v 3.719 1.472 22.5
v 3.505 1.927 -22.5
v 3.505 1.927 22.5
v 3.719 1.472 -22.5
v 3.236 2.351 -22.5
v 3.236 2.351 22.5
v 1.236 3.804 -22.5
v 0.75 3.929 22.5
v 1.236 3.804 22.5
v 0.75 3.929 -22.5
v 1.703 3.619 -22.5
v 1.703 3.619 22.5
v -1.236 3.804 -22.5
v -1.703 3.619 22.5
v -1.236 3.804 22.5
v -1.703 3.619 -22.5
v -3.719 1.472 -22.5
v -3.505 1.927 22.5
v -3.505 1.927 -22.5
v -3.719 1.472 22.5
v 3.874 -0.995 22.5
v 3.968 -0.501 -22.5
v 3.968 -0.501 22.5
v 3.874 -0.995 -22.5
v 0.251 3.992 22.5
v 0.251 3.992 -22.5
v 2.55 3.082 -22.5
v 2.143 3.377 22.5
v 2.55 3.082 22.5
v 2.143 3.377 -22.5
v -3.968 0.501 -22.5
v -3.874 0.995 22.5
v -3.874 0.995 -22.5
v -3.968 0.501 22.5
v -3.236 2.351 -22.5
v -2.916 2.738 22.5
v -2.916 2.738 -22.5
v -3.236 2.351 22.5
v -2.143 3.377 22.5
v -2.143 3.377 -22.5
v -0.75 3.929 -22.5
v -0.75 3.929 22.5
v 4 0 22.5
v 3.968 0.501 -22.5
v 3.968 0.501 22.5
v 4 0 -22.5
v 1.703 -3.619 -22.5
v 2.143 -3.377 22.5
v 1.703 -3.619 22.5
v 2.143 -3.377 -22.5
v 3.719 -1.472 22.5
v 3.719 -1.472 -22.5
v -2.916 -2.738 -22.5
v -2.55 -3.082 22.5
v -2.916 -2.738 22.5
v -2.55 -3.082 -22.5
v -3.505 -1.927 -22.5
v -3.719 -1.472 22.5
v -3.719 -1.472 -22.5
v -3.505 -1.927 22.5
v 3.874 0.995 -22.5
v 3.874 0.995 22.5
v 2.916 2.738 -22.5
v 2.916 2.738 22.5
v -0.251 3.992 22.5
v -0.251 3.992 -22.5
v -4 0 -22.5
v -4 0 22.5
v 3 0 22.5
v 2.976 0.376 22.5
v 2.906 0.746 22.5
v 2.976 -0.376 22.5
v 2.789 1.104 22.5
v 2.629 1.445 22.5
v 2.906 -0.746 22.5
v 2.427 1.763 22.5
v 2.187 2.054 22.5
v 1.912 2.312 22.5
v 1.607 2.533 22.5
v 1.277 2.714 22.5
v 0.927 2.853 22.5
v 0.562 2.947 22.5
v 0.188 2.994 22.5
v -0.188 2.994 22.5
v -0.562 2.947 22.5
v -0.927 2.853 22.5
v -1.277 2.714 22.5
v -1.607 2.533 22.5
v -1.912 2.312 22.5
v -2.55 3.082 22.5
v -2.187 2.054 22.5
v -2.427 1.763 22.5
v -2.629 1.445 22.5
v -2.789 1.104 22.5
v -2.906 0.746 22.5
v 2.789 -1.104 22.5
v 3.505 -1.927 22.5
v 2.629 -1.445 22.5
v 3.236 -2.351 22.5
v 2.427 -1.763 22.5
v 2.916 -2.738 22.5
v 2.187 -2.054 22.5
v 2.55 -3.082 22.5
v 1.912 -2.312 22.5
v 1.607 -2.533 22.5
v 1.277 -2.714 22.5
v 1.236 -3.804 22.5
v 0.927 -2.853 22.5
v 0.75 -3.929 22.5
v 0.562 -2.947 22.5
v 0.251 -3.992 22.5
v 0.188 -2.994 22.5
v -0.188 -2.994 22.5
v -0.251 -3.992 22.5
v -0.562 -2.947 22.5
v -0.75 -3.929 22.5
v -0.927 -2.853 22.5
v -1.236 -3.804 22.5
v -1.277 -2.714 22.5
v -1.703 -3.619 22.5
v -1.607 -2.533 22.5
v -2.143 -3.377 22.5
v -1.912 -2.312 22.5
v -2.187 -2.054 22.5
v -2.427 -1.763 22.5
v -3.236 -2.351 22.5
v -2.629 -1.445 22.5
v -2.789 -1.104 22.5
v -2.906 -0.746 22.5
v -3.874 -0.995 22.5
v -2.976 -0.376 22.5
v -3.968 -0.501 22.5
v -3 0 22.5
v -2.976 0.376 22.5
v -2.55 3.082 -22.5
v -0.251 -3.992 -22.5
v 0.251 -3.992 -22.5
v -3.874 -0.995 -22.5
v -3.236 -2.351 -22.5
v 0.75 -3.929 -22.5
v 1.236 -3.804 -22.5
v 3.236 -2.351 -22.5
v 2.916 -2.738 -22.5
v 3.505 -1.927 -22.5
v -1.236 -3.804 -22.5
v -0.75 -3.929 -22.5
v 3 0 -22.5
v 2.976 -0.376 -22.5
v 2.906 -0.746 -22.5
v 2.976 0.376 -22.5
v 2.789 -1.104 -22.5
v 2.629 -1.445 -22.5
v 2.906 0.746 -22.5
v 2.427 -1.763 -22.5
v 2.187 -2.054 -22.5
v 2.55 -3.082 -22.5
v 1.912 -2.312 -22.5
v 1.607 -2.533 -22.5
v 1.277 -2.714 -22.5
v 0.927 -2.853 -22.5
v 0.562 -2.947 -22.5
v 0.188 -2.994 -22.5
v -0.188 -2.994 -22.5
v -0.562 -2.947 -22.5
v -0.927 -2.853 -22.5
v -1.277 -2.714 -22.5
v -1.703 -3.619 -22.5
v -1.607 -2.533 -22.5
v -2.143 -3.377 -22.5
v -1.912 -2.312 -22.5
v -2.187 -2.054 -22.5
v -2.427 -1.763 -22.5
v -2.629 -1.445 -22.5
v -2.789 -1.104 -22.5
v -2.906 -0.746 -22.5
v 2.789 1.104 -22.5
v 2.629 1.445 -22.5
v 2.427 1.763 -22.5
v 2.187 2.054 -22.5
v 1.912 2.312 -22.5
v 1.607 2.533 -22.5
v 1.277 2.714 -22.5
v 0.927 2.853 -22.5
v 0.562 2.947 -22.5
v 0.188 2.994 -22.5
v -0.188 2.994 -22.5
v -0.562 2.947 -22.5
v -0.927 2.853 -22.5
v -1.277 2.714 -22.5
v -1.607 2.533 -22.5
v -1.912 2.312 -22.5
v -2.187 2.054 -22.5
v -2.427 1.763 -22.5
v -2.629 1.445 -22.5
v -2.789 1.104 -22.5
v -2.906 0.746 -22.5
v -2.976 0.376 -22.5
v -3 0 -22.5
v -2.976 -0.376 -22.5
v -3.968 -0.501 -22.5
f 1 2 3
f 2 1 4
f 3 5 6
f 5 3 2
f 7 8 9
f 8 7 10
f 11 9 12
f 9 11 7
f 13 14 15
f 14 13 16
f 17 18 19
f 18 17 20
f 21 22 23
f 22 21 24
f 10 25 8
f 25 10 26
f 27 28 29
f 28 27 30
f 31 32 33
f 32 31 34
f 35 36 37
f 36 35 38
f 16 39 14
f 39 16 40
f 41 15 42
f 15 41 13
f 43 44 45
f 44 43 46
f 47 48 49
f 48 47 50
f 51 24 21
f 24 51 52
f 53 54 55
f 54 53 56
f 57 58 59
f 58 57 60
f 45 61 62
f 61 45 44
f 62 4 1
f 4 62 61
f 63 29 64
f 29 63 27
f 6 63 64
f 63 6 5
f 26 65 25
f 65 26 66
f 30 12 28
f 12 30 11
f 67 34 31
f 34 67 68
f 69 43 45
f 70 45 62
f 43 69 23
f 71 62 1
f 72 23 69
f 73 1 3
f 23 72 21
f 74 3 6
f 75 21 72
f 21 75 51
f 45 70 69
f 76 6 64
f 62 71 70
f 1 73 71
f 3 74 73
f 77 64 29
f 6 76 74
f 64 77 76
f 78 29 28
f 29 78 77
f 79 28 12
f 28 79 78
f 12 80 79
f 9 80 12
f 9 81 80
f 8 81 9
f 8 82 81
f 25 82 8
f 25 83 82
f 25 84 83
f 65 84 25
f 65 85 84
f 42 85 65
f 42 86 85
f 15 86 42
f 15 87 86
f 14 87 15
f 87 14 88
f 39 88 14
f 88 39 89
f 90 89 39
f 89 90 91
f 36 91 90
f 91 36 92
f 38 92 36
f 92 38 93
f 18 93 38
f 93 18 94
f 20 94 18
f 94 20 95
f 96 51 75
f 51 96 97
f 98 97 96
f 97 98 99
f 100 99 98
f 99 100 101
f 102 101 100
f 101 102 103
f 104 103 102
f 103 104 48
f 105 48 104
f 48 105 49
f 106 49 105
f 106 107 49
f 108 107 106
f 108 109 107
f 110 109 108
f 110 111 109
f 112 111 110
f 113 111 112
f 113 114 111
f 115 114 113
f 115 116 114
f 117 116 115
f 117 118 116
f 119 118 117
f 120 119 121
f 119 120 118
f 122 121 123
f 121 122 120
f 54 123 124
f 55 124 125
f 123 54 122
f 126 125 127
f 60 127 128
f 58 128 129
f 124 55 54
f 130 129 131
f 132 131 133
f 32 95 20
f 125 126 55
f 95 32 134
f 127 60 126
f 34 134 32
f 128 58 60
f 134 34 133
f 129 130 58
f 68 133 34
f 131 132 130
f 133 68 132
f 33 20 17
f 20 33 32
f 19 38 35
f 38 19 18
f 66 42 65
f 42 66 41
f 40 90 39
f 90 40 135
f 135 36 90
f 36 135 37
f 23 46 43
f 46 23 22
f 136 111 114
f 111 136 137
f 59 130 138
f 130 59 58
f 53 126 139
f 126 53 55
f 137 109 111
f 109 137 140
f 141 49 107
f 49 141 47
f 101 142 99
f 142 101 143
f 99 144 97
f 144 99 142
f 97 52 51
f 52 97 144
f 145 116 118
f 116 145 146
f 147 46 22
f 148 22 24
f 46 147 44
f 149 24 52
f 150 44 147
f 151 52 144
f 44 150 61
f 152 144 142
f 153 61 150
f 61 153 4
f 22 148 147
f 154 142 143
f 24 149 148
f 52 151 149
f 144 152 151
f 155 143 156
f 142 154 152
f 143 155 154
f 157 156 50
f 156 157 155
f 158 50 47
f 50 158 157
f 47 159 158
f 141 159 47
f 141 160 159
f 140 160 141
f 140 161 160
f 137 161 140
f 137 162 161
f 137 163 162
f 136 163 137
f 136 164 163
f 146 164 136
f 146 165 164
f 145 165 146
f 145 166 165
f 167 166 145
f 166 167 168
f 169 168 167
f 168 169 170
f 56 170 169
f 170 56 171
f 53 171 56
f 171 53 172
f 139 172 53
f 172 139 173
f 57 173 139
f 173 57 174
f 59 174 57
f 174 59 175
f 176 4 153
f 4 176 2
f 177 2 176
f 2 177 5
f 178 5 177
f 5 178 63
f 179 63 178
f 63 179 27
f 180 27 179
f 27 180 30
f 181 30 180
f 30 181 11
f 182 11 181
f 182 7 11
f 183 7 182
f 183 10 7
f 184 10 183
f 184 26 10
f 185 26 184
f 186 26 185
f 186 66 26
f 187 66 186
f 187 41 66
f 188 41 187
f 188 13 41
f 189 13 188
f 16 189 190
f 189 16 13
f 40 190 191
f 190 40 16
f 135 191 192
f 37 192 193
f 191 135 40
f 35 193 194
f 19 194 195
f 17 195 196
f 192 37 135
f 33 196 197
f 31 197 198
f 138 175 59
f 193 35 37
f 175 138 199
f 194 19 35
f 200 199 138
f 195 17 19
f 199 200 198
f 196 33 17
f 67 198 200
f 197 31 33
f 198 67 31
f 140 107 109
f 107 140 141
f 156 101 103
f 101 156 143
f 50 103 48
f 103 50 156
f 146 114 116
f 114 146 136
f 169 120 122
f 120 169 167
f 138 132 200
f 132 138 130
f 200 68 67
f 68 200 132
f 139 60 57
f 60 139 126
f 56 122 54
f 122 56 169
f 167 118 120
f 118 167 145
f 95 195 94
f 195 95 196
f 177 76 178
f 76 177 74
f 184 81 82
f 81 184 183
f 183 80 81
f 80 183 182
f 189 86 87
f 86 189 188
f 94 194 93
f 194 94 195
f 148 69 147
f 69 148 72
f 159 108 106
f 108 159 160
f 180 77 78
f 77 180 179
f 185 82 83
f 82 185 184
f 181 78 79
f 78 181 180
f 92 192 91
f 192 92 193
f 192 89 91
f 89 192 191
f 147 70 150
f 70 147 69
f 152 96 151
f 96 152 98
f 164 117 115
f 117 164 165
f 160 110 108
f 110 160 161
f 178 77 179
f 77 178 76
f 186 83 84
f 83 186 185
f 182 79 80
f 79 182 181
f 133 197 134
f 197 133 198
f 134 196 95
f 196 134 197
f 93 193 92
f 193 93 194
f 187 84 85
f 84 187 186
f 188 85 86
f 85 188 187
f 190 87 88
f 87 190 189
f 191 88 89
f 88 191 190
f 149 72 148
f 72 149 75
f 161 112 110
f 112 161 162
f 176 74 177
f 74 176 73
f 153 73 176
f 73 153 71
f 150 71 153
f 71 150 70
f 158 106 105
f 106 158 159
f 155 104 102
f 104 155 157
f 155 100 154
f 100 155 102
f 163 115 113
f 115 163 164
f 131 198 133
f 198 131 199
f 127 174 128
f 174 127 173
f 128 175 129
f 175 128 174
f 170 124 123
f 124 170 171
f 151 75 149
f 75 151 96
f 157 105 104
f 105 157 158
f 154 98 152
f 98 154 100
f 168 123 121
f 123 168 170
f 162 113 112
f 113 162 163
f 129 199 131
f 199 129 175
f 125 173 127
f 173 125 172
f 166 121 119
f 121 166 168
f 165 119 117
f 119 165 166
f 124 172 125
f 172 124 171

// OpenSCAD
$fn = 50;


difference() {
	union() {
		translate(v = [0, 0, -22.5000000000]) {
			cylinder(h = 45, r = 4.0000000000);
		}
	}
	union() {
		translate(v = [0, 0, -100.0000000000]) {
			cylinder(h = 200, r = 3);
		}
	}
}
